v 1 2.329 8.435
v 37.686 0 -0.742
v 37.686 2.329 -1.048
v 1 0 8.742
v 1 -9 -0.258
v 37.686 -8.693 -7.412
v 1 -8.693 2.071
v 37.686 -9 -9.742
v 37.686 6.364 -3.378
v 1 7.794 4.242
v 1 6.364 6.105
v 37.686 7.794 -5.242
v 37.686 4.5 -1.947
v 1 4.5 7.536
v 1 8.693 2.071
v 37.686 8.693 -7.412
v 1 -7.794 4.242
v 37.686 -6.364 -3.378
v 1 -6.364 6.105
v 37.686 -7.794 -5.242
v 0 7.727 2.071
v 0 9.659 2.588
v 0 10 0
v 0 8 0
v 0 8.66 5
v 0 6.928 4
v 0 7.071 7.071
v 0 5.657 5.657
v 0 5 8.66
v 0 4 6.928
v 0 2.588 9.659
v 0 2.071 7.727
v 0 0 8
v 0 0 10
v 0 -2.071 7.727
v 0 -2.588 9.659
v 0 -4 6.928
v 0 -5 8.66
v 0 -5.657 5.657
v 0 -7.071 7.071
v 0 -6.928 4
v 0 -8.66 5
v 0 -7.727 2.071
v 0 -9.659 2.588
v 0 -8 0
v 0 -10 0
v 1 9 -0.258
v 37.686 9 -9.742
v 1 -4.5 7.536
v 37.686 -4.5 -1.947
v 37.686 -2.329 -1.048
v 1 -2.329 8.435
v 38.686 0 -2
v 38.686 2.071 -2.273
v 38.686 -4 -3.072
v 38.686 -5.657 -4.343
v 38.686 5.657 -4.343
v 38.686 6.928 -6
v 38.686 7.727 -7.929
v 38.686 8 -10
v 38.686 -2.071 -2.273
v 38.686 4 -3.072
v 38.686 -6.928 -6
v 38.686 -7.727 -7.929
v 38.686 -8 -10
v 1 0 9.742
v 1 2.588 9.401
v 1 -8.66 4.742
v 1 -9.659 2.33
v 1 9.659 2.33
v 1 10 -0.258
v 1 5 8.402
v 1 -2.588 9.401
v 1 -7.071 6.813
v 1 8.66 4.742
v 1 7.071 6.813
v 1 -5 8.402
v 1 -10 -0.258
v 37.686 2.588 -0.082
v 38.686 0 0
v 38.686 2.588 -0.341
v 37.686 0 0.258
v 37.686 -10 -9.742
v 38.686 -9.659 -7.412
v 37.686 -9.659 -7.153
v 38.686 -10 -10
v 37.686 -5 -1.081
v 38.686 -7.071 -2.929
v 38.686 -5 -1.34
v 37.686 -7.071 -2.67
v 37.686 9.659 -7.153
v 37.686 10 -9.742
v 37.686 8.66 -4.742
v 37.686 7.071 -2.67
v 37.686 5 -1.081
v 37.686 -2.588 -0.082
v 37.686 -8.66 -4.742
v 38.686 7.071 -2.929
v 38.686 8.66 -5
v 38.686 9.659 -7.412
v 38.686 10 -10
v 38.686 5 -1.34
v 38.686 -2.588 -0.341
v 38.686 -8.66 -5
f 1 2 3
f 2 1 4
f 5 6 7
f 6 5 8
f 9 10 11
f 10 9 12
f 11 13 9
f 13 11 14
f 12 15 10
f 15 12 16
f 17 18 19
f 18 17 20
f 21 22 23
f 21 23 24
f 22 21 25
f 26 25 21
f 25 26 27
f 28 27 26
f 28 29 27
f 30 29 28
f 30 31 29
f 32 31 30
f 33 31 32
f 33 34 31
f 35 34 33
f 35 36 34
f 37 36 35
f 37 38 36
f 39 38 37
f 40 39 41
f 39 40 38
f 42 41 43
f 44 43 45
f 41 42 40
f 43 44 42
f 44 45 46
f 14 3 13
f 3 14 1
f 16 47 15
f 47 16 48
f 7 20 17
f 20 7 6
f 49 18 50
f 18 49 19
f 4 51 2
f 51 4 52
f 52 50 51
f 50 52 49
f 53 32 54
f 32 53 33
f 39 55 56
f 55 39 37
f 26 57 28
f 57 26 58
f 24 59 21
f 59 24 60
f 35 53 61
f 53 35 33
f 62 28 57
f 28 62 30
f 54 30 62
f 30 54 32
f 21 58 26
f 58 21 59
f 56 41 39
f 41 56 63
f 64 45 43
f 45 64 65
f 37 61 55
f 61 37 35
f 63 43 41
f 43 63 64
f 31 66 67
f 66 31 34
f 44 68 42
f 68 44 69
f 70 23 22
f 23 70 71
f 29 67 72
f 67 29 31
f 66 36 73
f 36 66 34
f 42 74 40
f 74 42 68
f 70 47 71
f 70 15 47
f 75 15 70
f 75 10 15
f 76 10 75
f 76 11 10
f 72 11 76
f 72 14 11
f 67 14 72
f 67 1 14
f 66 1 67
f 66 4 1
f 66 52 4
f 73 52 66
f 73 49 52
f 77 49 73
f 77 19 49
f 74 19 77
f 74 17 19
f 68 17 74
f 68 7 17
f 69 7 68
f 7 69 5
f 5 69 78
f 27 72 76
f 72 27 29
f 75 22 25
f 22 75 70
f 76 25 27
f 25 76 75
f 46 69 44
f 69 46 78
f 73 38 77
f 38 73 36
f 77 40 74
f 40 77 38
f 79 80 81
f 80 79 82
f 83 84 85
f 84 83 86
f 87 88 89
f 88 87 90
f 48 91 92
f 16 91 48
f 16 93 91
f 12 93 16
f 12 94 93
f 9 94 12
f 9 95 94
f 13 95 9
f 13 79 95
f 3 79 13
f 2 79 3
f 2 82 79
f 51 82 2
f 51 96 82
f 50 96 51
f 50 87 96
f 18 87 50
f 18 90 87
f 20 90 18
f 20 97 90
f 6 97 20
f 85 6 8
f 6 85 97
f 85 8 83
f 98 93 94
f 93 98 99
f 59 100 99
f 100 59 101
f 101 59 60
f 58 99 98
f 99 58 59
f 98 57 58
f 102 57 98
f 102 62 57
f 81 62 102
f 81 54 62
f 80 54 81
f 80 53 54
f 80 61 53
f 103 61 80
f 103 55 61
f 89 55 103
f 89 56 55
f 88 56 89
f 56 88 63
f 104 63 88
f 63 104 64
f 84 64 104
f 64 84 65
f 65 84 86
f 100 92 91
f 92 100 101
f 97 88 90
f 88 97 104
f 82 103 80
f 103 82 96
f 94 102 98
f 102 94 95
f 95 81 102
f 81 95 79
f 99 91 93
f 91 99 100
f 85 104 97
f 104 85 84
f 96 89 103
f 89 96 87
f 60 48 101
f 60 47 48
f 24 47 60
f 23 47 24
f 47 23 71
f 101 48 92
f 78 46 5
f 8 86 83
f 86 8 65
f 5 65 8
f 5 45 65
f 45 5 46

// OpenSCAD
// file: ../build_environments.scad
// build_environments.scad: modules to build level sections
//

module pool(diameter=10.0, wall_height=2.0, step_width=3.0, connections=[])
{
    difference() {
        union() {
        difference() {
            cylinder(h=0.5,r1=diameter+step_width,r2=diameter+step_width,$fn=48);
            translate([0,0,-0.1])
                cylinder(h=0.7,r1=diameter,r2=diameter,$fn=48);
        }
        difference() {
            cylinder(h=wall_height,r1=diameter+step_width+1.0,r2=diameter+step_width+1.0,$fn=48);
            translate([0,0,-0.1])
                cylinder(h=wall_height+0.2,r1=diameter+step_width,r2=diameter+step_width,$fn=48);
        }
        }
    
        for (c = connections)
        {
            rotate([0,90,0]) {
                angle = atan2(c[1],c[0]);
                rotate([-angle,0,0]) {
                    cylinder(h=diameter+5.0,r1=c[2],r2=c[2],$fn=48);
                }
            }
        }
    }
}

module straight(length=10.0, width=2.0, dy1=0.0, dy2=0.0, dz=0.0)
{
    dims = [0, 0, 0, 0, 0, (dz/length)];
    matrix = [
        [ 1, dims[0], dims[1], 0 ],
        [ dims[2], 1, dims[4], 0 ],
        [ dims[5], dims[3], 1, 0 ],
        [ 0, 0, 0, 1 ]
    ];
    multmatrix(matrix)
    difference() {
        translate([dy1,0,0])
        union() {
            rotate([0,90,0]) {
                difference() {
                    cylinder(h=(length-dy1-dy2),r1=width+1.0,r2=width+1.0,$fn=24);
                    translate([0,0,-0.1])
                        cylinder(h=(length-dy1-dy2+0.2),r1=width,r2=width,$fn=24);
                }
                difference() {
                    cylinder(h=1.0,r1=width+2.0,r2=width+2.0,$fn=24);
                    translate([0,0,-0.1])
                        cylinder(h=1.2,r1=width,r2=width,$fn=24);
                }
                translate([0,0,(length-dy1-dy2)-1.0]) {
                    difference() {
                        cylinder(h=1.0,r1=width+2.0,r2=width+2.0,$fn=24);
                        translate([0,0,-0.1])
                            cylinder(h=1.2,r1=width,r2=width,$fn=24);
                    }
                }
            }
        }
        translate([0,0,-(2*width+4.0)/2])
            cube([3*length,3*length,2*width+4.0],center=true);
    }
}

module curve(p0=[0,0], center=[0,0], dir=1, angle=0.0, width=2.0)
{
    radius = sqrt((p0[0]-center[0])*(p0[0]-center[0]) + (p0[1]-center[1])*(p0[1]-center[1]));
    if (dir == 0) {
        difference() {
            rotate([0,0,-90])
            difference() {
                rotate_extrude(angle = angle, convexity = 10, $fn=32)
                    translate([radius, 0, 0])
                        circle(r = width+1.0,$fn=24);
                rotate([0,0,-1.0])
                    rotate_extrude(angle = angle+2.0, convexity = 10, $fn=32)
                        translate([radius, 0, 0])
                            circle(r = width,$fn=24);
            }
            translate([0,0,-(2*width+4.0)/2])
                cube([5*radius,5*radius,2*width+4.0],center=true);
        }
    }
    else {
        difference() {
            rotate([0,0,90])
            difference() {
                rotate_extrude(angle = -angle, convexity = 10, $fn=32)
                    translate([radius, 0, 0])
                        circle(r = width+1.0,$fn=24);
                rotate([0,0,1.0])
                    rotate_extrude(angle = -angle-2.0, convexity = 10, $fn=32)
                        translate([radius, 0, 0])
                            circle(r = width,$fn=24);
            }
            translate([0,0,-(2*width+4.0)/2])
                cube([5*radius,5*radius,2*width+4.0],center=true);
        }
    }

}

// test pool
//pool(diameter=12.0000, wall_height=3.0000, step_width=3.0000, connections=[[0.0000,-26.0000,2.0000], [23.6074,0.0000,2.0000]]);

// test straight, slope
//straight(length=26.0000, width=2.0000, dy1=11.8322, dy2=6.7082, dz=0.0000);
//straight(length=29.1549, width=12.0000, dy1=0.0000, dy2=0.0000, dz=-15.0000);

// test curve
//curve(p0=[23.6074, 0.0000], center=[23.6074, 5.0000], dir=0, angle=60.1011, width=2.0000);
//curve(p0=[33.6426, 12.4219], center=[37.9771, 9.9295], dir=1, angle=120.4627, width=2.0000);
// main file
use <../build_environments.scad>;
straight(length=38.6859, width=8.0000, dy1=0.0000, dy2=0.0000, dz=-10.0000);
